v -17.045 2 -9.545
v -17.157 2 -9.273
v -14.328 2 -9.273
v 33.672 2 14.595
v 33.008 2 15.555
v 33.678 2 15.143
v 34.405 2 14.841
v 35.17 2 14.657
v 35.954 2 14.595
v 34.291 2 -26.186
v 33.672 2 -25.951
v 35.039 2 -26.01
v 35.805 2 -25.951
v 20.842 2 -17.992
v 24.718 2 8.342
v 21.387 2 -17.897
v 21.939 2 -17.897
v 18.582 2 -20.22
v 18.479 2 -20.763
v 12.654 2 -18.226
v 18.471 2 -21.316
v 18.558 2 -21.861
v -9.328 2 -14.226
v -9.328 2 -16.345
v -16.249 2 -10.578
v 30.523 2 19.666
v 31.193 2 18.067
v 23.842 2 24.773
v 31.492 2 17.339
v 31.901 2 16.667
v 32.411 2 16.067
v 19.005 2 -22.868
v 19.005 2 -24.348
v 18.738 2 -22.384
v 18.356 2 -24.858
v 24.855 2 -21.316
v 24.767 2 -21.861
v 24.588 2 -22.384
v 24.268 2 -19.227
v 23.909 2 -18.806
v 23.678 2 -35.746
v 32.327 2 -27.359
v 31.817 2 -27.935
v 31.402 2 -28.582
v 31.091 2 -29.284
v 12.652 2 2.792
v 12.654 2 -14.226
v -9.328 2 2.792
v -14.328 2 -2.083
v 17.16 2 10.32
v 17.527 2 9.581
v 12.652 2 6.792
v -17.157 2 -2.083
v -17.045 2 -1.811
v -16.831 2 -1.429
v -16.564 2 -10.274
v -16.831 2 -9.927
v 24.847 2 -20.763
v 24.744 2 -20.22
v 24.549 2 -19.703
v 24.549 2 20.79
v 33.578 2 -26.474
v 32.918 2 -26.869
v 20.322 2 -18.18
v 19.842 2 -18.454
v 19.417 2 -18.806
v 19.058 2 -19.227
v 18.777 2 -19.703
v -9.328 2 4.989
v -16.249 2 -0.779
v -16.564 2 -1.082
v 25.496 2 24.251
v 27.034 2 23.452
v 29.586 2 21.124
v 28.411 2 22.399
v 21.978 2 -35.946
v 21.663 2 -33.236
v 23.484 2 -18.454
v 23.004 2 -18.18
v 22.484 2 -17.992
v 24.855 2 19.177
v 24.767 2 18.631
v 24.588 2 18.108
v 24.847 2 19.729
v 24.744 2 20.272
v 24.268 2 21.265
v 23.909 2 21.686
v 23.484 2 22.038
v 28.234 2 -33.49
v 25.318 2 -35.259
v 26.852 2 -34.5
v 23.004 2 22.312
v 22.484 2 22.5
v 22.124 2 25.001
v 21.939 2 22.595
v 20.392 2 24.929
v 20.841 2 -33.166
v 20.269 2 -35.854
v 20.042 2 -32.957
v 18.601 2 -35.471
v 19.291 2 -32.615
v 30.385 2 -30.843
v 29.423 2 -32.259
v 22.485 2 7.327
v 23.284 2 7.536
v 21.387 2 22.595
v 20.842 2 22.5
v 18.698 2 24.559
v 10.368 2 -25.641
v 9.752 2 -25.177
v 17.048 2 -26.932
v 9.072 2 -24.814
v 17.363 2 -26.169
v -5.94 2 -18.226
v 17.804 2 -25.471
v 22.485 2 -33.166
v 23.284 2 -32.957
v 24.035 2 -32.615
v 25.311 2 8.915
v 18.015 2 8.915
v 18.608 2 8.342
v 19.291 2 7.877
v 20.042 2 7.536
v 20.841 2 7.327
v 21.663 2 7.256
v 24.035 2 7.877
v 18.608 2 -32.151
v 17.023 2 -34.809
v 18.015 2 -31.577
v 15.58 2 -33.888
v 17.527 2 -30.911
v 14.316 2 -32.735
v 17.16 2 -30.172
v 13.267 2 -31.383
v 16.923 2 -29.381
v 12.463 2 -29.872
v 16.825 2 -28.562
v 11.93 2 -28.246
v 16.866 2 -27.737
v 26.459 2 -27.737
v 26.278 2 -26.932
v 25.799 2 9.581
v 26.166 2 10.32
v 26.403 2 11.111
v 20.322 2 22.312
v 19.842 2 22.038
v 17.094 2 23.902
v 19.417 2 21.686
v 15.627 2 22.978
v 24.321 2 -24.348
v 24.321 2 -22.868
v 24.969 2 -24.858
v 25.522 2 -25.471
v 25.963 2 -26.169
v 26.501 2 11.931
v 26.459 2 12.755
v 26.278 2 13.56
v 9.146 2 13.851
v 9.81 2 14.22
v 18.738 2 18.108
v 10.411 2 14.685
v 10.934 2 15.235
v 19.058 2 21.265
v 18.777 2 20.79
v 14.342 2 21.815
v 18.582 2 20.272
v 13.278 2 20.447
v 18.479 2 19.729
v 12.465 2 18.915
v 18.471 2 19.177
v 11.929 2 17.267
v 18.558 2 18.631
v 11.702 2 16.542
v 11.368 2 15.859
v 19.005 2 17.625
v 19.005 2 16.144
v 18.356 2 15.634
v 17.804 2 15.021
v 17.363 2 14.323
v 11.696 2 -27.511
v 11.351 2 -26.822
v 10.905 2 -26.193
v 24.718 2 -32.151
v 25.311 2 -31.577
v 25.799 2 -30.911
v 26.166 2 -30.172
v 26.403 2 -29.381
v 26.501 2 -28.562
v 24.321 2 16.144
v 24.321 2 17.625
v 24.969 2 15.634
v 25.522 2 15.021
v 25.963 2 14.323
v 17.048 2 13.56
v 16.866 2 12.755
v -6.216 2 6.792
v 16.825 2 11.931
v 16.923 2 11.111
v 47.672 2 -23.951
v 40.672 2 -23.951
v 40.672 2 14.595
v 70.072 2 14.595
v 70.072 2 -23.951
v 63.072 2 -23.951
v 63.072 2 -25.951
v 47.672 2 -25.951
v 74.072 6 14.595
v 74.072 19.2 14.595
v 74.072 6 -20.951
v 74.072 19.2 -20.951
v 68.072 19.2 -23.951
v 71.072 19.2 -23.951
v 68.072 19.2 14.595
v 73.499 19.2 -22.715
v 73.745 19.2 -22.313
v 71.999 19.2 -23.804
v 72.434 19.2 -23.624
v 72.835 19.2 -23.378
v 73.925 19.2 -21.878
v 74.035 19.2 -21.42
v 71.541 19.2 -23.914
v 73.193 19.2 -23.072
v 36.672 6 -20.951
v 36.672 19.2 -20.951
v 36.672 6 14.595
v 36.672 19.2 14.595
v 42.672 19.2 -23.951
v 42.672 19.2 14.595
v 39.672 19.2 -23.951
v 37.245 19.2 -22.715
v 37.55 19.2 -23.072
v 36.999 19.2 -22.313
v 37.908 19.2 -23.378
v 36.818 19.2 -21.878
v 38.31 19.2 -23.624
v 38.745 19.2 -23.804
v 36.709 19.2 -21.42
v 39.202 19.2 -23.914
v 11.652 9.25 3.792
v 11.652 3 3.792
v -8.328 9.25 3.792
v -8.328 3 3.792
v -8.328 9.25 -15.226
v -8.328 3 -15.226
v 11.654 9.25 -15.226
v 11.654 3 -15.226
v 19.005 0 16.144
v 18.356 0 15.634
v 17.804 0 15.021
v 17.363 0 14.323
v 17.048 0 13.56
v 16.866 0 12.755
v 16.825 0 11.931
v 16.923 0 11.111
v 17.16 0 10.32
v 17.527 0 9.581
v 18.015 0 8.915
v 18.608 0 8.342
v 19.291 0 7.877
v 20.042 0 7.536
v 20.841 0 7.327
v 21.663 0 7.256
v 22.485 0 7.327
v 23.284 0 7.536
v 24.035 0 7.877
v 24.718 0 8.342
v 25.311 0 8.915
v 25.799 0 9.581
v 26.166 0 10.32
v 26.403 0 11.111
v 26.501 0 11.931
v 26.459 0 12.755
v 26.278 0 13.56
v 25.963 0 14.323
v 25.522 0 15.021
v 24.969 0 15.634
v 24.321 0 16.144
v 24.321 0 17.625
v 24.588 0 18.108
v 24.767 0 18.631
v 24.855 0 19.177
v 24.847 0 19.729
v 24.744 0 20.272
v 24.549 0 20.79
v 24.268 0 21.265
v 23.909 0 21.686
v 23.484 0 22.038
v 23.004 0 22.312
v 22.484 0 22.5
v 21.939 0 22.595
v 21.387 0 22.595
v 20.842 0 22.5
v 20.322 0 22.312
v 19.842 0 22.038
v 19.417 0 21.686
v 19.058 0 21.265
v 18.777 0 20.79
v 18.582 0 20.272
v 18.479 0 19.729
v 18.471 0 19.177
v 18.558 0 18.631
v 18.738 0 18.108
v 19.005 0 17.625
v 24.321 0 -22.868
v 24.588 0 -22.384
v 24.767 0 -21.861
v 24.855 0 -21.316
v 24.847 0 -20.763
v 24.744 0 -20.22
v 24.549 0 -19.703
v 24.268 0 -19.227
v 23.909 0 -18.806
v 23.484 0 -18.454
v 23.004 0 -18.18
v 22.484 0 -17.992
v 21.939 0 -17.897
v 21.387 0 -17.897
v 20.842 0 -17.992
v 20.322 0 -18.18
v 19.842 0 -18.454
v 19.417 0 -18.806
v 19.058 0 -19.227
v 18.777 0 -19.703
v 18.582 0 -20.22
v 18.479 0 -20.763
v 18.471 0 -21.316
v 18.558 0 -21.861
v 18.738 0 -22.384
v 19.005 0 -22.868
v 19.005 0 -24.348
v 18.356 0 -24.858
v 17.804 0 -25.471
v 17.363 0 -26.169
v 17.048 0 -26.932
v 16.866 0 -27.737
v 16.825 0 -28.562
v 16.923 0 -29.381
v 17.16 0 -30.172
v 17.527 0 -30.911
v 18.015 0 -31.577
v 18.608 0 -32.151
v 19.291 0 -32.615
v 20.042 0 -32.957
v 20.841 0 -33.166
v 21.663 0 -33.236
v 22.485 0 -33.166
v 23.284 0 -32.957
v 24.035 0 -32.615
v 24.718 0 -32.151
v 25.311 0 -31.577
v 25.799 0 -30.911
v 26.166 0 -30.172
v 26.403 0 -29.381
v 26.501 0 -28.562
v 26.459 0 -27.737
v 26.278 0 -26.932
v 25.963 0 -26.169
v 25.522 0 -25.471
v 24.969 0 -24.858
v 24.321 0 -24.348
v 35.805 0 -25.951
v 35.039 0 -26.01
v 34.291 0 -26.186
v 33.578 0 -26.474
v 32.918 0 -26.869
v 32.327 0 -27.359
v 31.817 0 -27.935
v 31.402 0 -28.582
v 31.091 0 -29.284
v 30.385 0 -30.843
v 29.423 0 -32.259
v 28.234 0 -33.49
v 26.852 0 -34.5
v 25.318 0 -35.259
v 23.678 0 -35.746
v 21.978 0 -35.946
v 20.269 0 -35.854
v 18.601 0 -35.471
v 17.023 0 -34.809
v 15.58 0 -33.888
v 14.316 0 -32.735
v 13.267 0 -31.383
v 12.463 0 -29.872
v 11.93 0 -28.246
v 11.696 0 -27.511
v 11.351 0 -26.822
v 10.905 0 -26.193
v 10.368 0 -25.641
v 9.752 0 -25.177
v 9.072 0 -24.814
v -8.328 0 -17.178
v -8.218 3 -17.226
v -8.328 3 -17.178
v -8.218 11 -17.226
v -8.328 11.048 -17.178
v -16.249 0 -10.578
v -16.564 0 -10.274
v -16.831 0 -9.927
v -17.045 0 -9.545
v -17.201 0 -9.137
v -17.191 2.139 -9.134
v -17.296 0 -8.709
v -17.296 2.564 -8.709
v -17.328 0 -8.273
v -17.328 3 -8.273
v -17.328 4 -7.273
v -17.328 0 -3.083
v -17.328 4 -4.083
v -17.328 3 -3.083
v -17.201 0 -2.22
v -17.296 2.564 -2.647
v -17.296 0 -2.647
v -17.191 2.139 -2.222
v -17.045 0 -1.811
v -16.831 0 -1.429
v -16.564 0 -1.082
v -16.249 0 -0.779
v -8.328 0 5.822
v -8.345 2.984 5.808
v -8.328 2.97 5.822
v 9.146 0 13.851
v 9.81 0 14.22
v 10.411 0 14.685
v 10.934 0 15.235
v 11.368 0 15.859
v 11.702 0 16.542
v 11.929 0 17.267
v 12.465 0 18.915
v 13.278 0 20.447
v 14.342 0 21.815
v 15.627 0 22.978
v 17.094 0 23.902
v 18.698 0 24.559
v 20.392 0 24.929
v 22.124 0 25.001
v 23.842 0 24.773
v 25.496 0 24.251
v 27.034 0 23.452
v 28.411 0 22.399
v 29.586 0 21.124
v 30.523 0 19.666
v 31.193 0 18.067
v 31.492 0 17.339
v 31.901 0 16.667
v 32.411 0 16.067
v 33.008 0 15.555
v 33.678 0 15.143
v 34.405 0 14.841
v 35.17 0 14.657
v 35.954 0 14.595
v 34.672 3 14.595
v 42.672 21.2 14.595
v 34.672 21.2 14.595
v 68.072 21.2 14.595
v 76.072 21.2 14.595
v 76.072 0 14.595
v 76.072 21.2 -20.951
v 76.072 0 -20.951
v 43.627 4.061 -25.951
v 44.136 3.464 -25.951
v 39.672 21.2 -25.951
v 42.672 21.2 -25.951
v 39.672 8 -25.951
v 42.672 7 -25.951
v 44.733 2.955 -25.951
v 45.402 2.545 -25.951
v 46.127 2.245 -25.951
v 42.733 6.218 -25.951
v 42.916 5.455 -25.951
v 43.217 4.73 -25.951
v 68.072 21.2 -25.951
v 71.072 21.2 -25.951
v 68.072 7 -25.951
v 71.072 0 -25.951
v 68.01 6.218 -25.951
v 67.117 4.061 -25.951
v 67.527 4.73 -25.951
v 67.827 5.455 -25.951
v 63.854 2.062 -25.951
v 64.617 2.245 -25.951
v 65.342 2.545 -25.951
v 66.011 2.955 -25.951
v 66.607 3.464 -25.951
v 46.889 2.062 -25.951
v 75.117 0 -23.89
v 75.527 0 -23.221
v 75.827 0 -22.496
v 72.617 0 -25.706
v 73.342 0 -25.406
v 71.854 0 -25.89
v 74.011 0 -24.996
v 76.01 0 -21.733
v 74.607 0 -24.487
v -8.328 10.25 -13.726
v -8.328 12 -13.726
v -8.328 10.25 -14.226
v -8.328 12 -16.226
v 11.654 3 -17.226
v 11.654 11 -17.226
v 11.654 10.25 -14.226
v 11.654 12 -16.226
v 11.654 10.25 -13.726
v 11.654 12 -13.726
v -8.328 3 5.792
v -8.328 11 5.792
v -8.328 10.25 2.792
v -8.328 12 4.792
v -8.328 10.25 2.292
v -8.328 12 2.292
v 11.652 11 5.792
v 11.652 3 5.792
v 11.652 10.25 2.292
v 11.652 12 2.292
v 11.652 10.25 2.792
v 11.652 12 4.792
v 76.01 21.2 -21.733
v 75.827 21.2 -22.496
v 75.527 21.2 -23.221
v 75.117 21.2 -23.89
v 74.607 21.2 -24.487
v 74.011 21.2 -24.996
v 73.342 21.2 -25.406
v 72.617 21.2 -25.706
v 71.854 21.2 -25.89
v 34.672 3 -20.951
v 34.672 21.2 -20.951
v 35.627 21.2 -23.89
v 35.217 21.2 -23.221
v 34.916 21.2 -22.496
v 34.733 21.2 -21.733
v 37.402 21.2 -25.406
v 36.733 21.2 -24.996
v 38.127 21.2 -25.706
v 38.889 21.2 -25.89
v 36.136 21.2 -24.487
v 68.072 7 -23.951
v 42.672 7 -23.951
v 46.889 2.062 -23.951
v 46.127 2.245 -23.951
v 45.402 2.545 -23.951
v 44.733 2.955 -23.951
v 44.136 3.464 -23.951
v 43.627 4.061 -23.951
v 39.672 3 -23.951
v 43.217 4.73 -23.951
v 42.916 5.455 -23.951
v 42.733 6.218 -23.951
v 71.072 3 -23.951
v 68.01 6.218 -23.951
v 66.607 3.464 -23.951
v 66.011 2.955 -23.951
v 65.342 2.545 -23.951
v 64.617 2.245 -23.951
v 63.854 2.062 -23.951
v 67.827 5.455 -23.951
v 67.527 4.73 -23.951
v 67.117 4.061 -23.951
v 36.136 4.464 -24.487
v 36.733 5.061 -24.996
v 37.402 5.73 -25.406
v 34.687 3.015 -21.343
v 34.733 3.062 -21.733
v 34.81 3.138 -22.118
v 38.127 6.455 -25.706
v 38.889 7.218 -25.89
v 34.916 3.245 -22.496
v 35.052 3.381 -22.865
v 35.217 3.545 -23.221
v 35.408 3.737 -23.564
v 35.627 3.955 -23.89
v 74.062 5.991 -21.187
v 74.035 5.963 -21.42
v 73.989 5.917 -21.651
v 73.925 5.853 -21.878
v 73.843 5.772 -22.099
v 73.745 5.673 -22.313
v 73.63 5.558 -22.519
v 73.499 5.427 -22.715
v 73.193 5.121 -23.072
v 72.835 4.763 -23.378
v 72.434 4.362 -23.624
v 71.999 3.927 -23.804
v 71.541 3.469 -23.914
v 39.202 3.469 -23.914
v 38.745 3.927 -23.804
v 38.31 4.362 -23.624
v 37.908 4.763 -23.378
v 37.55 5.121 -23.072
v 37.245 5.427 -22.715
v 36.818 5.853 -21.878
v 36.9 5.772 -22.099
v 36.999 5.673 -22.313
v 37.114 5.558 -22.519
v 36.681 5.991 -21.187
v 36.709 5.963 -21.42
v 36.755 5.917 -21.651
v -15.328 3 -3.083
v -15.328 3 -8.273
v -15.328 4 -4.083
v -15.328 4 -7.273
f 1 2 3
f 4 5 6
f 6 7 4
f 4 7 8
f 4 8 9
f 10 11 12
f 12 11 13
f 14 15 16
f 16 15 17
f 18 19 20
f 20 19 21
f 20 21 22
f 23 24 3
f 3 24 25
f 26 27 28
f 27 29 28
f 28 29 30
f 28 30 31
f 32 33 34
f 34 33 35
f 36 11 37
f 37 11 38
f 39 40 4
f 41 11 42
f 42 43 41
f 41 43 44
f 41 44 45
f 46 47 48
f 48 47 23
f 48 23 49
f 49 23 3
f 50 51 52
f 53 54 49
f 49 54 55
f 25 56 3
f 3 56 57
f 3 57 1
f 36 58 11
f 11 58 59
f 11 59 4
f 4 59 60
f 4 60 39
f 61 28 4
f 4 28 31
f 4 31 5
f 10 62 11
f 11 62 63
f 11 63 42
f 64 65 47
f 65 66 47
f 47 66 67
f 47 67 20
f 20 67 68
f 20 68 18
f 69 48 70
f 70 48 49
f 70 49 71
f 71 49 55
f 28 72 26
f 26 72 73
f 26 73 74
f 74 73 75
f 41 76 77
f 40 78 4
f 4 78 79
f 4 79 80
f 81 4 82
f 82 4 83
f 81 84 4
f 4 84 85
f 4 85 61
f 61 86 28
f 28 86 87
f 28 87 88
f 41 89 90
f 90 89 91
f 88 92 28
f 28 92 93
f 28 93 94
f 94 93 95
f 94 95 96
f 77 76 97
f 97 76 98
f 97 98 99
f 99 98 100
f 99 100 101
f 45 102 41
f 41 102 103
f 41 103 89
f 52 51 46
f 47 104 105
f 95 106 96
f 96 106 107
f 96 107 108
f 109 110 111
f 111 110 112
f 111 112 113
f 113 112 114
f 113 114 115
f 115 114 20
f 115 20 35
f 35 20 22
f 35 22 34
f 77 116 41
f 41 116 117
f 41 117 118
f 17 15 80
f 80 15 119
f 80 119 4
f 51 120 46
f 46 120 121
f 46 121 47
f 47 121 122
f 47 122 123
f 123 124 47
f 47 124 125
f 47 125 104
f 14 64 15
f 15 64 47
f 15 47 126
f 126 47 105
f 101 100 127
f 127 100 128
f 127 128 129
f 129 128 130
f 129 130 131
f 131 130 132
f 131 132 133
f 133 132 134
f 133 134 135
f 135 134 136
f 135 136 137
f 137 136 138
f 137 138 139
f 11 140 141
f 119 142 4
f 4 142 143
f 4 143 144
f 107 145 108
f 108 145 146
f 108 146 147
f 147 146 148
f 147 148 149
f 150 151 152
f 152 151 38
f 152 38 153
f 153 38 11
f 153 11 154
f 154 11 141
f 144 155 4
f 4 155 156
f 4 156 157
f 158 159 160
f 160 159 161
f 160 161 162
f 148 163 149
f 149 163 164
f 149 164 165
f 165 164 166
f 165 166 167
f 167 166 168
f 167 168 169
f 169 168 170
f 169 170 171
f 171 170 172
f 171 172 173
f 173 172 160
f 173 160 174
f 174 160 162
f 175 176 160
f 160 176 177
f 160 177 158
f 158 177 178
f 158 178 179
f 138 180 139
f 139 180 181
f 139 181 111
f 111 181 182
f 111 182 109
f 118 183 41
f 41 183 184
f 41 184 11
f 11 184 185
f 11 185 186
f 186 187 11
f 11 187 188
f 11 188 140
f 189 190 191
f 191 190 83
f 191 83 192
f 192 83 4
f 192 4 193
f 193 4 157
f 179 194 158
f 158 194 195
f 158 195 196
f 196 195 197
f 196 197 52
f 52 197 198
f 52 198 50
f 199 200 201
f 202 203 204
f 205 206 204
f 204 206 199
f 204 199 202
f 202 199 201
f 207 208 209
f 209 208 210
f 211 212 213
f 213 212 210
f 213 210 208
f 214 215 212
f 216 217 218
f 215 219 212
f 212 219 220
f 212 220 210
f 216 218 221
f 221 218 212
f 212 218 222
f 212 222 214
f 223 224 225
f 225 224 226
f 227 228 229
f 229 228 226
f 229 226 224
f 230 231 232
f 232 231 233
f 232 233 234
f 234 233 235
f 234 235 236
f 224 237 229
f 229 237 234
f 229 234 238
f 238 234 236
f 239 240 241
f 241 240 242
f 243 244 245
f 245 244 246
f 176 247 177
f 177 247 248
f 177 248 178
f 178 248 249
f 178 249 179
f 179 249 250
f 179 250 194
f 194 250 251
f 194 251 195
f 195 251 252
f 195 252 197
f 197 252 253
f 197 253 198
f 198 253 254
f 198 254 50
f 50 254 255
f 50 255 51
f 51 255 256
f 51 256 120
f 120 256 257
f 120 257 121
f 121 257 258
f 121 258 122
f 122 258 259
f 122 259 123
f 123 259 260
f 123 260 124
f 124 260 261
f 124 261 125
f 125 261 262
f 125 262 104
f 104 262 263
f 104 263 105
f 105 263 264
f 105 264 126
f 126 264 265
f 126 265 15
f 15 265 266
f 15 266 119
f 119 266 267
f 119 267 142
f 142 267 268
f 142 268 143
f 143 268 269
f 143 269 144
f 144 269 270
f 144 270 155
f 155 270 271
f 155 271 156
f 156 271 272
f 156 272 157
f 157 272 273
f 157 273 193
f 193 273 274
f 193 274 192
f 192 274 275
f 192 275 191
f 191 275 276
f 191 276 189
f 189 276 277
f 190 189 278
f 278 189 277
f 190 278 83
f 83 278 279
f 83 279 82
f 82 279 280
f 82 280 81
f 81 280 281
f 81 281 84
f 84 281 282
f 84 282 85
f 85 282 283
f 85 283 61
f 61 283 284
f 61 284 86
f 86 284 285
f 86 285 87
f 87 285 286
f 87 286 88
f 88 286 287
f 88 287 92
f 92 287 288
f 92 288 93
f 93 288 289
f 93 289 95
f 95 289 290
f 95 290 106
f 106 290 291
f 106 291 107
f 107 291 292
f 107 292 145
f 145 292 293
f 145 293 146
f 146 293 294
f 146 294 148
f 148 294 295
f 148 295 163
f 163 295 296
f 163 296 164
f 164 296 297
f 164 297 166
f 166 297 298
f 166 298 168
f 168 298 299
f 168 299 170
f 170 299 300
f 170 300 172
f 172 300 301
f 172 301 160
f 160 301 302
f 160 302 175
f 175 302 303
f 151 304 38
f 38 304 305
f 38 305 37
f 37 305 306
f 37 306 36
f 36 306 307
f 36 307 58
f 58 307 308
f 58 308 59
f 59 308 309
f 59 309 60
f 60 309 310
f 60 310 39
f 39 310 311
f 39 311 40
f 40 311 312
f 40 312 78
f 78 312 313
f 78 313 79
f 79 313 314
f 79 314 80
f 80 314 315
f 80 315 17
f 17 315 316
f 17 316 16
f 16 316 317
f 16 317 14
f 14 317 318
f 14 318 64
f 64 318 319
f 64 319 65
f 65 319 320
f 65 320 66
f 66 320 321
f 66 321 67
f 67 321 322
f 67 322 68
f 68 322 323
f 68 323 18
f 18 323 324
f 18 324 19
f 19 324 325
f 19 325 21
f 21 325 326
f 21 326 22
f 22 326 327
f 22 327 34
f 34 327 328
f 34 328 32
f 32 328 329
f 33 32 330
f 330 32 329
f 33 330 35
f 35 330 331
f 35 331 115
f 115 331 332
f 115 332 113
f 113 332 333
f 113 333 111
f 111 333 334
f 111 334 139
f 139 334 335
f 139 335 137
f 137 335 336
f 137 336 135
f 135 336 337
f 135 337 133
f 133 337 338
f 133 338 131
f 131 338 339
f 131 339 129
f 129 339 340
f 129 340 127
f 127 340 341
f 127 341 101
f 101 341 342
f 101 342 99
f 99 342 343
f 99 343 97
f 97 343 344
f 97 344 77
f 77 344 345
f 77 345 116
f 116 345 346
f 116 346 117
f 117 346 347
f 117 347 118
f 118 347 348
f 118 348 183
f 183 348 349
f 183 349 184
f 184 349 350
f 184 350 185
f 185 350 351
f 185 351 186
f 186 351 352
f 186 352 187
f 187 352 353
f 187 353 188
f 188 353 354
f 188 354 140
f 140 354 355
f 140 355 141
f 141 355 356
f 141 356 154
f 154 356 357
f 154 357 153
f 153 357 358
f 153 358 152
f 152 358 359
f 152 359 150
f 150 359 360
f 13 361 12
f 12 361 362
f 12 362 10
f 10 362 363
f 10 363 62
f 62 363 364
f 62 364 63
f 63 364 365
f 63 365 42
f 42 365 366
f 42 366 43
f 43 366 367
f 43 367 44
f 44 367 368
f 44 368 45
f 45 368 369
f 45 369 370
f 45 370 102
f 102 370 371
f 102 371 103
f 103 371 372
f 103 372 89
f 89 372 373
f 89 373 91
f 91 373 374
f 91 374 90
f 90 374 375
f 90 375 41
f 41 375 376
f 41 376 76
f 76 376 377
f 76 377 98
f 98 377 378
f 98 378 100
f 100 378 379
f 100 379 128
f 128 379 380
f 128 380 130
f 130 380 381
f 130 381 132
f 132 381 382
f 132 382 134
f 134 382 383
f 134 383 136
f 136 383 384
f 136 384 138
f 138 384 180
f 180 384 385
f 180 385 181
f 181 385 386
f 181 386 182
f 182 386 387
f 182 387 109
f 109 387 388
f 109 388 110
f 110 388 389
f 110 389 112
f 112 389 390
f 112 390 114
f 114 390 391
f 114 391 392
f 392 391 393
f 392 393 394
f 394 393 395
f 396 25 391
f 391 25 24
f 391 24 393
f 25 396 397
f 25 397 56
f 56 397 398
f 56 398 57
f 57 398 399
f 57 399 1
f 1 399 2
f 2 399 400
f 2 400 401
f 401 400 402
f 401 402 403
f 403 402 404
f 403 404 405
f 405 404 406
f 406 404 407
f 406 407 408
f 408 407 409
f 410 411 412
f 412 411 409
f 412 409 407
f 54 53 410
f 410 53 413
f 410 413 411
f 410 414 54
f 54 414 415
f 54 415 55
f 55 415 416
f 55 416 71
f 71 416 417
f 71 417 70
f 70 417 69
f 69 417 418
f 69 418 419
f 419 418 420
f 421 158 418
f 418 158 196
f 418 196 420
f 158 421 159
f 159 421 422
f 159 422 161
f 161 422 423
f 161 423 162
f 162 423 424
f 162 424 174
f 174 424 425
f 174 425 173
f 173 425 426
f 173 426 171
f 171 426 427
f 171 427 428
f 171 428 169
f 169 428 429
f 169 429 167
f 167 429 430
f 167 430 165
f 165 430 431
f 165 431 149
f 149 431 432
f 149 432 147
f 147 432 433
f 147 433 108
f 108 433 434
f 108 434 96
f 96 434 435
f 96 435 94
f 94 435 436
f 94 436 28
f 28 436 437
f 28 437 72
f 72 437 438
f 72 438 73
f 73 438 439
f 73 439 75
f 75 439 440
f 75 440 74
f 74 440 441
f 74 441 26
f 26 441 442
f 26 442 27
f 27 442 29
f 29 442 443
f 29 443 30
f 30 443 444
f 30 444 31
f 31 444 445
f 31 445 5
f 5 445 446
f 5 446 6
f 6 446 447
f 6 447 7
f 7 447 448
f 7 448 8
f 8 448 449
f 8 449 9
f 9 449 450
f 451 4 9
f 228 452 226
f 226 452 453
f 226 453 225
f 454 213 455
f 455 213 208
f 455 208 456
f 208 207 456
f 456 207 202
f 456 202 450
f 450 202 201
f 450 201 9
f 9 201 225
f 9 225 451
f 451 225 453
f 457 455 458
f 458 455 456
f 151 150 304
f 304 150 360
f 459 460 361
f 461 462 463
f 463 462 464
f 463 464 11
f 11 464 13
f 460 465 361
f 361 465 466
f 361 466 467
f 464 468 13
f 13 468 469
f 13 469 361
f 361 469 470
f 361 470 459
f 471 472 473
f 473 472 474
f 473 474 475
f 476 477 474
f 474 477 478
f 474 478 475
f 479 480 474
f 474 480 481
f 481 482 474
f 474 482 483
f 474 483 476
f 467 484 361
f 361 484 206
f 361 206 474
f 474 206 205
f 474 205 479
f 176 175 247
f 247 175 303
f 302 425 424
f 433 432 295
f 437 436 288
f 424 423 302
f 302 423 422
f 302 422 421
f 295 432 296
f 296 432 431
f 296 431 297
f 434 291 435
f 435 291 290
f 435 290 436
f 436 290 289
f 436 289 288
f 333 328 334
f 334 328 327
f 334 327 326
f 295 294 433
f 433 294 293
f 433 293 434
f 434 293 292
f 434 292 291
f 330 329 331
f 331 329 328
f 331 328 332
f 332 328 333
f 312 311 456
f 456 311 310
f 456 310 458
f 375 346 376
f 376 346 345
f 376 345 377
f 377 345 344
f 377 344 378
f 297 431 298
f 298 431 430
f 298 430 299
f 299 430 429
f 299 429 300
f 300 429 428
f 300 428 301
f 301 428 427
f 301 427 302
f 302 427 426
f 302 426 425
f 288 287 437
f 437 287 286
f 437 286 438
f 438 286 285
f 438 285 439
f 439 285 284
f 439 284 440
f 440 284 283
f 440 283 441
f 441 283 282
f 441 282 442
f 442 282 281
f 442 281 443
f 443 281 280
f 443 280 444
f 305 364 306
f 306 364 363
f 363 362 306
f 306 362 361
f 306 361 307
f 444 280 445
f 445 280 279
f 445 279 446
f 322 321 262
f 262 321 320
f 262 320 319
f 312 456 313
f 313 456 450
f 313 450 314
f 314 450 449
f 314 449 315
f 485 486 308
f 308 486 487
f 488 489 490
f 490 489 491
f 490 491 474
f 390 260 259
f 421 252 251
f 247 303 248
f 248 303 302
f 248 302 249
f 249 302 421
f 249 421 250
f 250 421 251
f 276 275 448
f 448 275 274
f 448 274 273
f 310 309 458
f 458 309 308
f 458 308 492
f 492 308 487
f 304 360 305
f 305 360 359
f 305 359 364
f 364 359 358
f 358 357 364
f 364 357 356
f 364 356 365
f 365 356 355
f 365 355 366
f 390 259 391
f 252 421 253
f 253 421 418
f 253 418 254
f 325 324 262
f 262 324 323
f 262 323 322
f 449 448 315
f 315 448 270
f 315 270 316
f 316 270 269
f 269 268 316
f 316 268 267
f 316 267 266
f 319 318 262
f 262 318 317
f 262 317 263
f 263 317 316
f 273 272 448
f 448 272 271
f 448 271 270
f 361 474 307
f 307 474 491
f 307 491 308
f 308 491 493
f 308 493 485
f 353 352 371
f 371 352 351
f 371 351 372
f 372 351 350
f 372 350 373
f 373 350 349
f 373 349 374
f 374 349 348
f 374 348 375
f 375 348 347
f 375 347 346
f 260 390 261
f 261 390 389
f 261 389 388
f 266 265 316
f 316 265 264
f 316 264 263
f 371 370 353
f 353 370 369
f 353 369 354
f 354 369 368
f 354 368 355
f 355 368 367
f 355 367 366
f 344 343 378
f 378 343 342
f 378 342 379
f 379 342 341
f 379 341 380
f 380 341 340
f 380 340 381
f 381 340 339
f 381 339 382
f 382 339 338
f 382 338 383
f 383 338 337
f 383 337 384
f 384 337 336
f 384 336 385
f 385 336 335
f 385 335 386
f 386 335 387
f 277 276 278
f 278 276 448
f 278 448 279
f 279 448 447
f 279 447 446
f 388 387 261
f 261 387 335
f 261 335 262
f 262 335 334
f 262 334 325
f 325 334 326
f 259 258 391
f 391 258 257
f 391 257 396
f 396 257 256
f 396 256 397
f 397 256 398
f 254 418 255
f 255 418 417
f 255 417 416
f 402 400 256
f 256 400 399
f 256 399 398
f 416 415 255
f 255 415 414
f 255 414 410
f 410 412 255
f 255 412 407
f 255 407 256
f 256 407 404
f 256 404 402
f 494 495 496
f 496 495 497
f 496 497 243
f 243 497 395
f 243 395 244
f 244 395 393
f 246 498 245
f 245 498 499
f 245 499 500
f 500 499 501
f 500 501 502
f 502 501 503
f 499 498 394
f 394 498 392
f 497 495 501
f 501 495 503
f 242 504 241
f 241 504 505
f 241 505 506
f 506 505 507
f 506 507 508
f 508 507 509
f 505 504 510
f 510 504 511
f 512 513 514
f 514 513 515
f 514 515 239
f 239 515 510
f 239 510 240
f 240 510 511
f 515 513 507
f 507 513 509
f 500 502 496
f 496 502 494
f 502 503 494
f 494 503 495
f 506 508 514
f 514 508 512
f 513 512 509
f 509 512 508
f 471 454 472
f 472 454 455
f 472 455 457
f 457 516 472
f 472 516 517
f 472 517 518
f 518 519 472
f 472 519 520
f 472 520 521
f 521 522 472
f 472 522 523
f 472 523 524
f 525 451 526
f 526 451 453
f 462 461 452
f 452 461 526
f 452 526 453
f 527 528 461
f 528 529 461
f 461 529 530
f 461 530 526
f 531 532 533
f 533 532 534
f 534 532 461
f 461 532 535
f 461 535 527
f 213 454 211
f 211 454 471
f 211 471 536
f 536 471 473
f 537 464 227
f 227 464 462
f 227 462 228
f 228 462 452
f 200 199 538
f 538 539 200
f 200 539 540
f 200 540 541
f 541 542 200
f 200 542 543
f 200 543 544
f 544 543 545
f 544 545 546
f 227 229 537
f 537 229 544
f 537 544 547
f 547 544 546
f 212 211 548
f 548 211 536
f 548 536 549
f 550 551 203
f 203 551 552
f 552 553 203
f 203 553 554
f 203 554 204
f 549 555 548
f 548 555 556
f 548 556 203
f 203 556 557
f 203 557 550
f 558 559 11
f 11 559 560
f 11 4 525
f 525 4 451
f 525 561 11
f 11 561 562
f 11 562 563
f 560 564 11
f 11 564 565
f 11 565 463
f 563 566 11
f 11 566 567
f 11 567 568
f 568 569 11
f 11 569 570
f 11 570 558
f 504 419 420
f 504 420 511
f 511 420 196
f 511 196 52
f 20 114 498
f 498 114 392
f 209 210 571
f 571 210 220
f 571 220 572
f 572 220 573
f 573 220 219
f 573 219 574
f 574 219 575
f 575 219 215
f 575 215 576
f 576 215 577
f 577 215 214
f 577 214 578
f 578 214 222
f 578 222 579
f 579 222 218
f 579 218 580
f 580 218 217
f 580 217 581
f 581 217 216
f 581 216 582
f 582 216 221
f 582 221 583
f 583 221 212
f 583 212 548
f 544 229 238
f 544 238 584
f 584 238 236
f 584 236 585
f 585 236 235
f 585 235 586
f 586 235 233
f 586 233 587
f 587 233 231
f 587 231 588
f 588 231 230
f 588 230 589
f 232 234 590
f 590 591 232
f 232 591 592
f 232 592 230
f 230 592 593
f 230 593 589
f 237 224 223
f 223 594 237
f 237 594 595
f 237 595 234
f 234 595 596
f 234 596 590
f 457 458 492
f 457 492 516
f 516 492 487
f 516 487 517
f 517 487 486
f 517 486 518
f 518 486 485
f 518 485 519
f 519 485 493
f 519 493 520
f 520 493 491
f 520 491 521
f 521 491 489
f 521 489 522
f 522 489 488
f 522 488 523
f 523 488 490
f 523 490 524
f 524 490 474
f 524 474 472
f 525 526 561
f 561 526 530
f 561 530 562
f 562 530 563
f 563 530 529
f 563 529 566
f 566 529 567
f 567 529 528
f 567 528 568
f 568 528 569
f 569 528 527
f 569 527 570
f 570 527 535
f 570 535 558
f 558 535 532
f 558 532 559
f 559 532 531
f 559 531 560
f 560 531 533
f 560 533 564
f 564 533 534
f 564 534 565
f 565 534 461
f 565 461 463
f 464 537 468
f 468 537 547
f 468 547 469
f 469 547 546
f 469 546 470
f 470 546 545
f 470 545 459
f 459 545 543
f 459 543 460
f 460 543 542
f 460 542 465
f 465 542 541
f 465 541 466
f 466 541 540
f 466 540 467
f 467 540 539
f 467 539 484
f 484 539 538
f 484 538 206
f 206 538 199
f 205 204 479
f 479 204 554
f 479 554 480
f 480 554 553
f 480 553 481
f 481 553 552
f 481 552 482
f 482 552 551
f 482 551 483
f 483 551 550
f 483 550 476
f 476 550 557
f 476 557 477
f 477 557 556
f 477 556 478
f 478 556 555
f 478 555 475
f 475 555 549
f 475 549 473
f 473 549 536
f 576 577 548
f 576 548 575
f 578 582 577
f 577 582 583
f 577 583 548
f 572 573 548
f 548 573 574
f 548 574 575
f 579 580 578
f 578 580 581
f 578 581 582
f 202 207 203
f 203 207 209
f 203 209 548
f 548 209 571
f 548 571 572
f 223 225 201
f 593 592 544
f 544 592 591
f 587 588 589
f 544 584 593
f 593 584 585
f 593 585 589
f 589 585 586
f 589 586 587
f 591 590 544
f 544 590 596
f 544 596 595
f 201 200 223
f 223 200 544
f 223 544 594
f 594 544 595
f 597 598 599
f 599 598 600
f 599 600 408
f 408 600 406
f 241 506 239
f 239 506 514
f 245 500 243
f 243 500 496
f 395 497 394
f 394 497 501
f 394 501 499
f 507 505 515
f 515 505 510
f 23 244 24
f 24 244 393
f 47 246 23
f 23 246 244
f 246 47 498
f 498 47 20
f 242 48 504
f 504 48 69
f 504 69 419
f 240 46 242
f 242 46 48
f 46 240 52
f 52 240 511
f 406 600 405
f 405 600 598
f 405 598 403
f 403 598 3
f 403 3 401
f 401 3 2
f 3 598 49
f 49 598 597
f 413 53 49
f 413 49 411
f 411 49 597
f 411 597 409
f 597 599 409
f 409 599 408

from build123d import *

# Parameters (mm, degrees)
BOSS_EXTRUDE3_DEPTH  = 2
SKETCH2_W            = 19.980275276
SKETCH2_H            = 2
BOSS_EXTRUDE4_DEPTH  = 10
SKETCH4_W            = 19.982686102
SKETCH4_H            = 1.75
BOSS_EXTRUDE6_DEPTH  = 1.5
SKETCH5_W            = 19.980275276
SKETCH5_H            = 1.75
BOSS_EXTRUDE7_DEPTH  = 1.5
SKETCH6_W            = 2
SKETCH6_H            = 40.546143633
BOSS_EXTRUDE8_DEPTH  = 19.2
SKETCH7_W            = 40.546143633
SKETCH7_H            = 2
BOSS_EXTRUDE9_DEPTH  = 6
SKETCH8_W            = 40.546143633
SKETCH8_H            = 2
BOSS_EXTRUDE10_DEPTH = 6
SKETCH9_W            = 2
SKETCH9_H            = 17.2
BOSS_EXTRUDE11_DEPTH = 6
SKETCH11_W           = 2
SKETCH11_H           = 17.2
BOSS_EXTRUDE12_DEPTH = 6
CHAMFER3_SIZE        = 1
FILLET6_R            = 3
FILLET12_R           = 5
FILLET13_R           = 5
CHAMFER4_SIZE        = 4
SKETCH12_W           = 2
SKETCH12_H           = 5.189750324
BOSS_EXTRUDE13_DEPTH = 2
CHAMFER5_SIZE        = 1


with BuildPart() as part:
    # Sketch1 → Boss-Extrude3 (new body)
    with BuildSketch(Plane(origin=(0, 0, 0), x_dir=(1, 0, 0), z_dir=(0, 1, 0))):
        with BuildLine():
            Line((-8.328383402, 17.178082192), (-11.926539406, 14.179618856))
            Line((-11.926539406, 14.179618856), (-16.248936601, 10.577621193))
            ThreePointArc((-16.248936601, 10.577621193), (-17.045151666, 9.545423543), (-17.328383402, 8.272957354))
            Line((-17.328383402, 8.272957354), (-17.328383402, 3.08320703))
            ThreePointArc((-17.328383402, 3.08320703), (-17.045151666, 1.810740841), (-16.248936601, 0.778543191))
            Line((-16.248936601, 0.778543191), (-11.926539406, -2.823454472))
            Line((-11.926539406, -2.823454472), (-8.328383402, -5.821917808))
            Line((-8.328383402, -5.821917808), (9.145578492, -13.850782578))
            ThreePointArc((9.145578492, -13.850782578), (10.93396709, -15.23549913), (11.929216114, -17.266571036))
            ThreePointArc((11.929216114, -17.266571036), (21.256400089, -25.002812312), (31.193312026, -18.067138506))
            ThreePointArc((31.193312026, -18.067138506), (33.007912602, -15.555233716), (35.954159741, -14.594989625))
            Line((35.954159741, -14.594989625), (36.671616598, -14.594989625))
            Line((36.671616598, -14.594989625), (76.071616598, -14.594989625))
            Line((76.071616598, -14.594989625), (76.071616598, 25.951154008))
            Line((76.071616598, 25.951154008), (36.671616598, 25.951154008))
            Line((36.671616598, 25.951154008), (35.805077068, 25.951154008))
            ThreePointArc((35.805077068, 25.951154008), (32.918325722, 26.868671104), (31.09103186, 29.284487342))
            ThreePointArc((31.09103186, 29.284487342), (21.121556826, 35.936488389), (11.929724224, 28.245600027))
            ThreePointArc((11.929724224, 28.245600027), (10.905359885, 26.19326698), (9.072373225, 24.814298837))
            Line((9.072373225, 24.814298837), (-8.328383402, 17.178082192))
        make_face()
        with BuildLine():
            Line((24.320629097, -16.144178085), (24.320629097, -17.62452967))
            ThreePointArc((24.320629097, -17.62452967), (21.662941444, -22.60685858), (19.005253792, -17.62452967))
            Line((19.005253792, -17.62452967), (19.005253792, -16.144178085))
            ThreePointArc((19.005253792, -16.144178085), (21.662941444, -7.256310151), (24.320629097, -16.144178085))
        make_face(mode=Mode.SUBTRACT)
        with BuildLine():
            Line((24.320629097, 24.348091169), (24.320629097, 22.867739584))
            ThreePointArc((24.320629097, 22.867739584), (21.662941444, 17.885410674), (19.005253792, 22.867739584))
            Line((19.005253792, 22.867739584), (19.005253792, 24.348091169))
            ThreePointArc((19.005253792, 24.348091169), (21.662941444, 33.235959102), (24.320629097, 24.348091169))
        make_face(mode=Mode.SUBTRACT)
    extrude(amount=BOSS_EXTRUDE3_DEPTH)

    # Sketch2 → Boss-Extrude4 (add)
    with BuildSketch(Plane(origin=(0, 2, 0), x_dir=(1, 0, 0), z_dir=(0, 1, 0))):
        Polygon((11.6543027, 15.226428568), (11.6543027, 17.226428568), (-8.218215819, 17.226428568), (-8.328383402, 17.178082192), (-8.328383402, 15.226428568), align=None)
        with Locations((1.661754236, -4.792288058)):
            Rectangle(SKETCH2_W, SKETCH2_H)
    extrude(amount=BOSS_EXTRUDE4_DEPTH)

    # Sketch4 → Boss-Extrude6 (add)
    with BuildSketch(Plane.XY.offset(-15.226428568)):
        with Locations((1.662959649, 11.125)):
            Rectangle(SKETCH4_W, SKETCH4_H)
    extrude(amount=BOSS_EXTRUDE6_DEPTH)

    # Sketch5 → Boss-Extrude7 (add)
    with BuildSketch(Plane(origin=(0, 0, 3.792288058), x_dir=(-1, 0, 0), z_dir=(0, 0, -1))):
        with Locations((-1.661754236, 11.125)):
            Rectangle(SKETCH5_W, SKETCH5_H)
    extrude(amount=BOSS_EXTRUDE7_DEPTH)

    # Sketch6 → Boss-Extrude8 (add)
    with BuildSketch(Plane(origin=(0, 2, 0), x_dir=(1, 0, 0), z_dir=(0, 1, 0))):
        with Locations((35.671616598, 5.678082192)):
            Rectangle(SKETCH6_W, SKETCH6_H)
        with Locations((75.071616598, 5.678082192)):
            Rectangle(SKETCH6_W, SKETCH6_H)
    extrude(amount=BOSS_EXTRUDE8_DEPTH)

    # Sketch7 → Boss-Extrude9 (add)
    with BuildSketch(Plane.ZY.offset(-74.071616598)):
        with Locations((-5.678082192, 20.2)):
            Rectangle(SKETCH7_W, SKETCH7_H)
    extrude(amount=BOSS_EXTRUDE9_DEPTH)

    # Sketch8 → Boss-Extrude10 (add)
    with BuildSketch(Plane(origin=(36.671616598, 0, 0), x_dir=(0, 0, -1), z_dir=(1, 0, 0))):
        with Locations((5.678082192, 20.2)):
            Rectangle(SKETCH8_W, SKETCH8_H)
    extrude(amount=BOSS_EXTRUDE10_DEPTH)

    # Sketch9 → Boss-Extrude11 (add)
    with BuildSketch(Plane(origin=(36.671616598, 0, 0), x_dir=(0, 0, -1), z_dir=(1, 0, 0))):
        with Locations((24.951154008, 10.6)):
            Rectangle(SKETCH9_W, SKETCH9_H)
    extrude(amount=BOSS_EXTRUDE11_DEPTH)

    # Sketch11 → Boss-Extrude12 (add)
    with BuildSketch(Plane.ZY.offset(-74.071616598)):
        with Locations((-24.951154008, 10.6)):
            Rectangle(SKETCH11_W, SKETCH11_H)
    extrude(amount=BOSS_EXTRUDE12_DEPTH)

    # Chamfer3
    # the kernel refuses this chamfer: 1 mm, written as the material it adds along each edge
    with BuildSketch(Plane(origin=(34.671616598, 2, -25.951154008), x_dir=(-1, 0, 0), z_dir=(0, 0, 1))) as chamfer3_piece_1:
        Polygon((CHAMFER3_SIZE, 0), (0, -CHAMFER3_SIZE), (0, 0), align=None)
    extrude(amount=40.546143633)
    with BuildSketch(Plane(origin=(11.651891874, 2, 5.792288058), x_dir=(0, 0, 1), z_dir=(-1, 0, 0))) as chamfer3_piece_2_section:
        Polygon((CHAMFER3_SIZE, 0), (0, CHAMFER3_SIZE), (0, 0), align=None)
    chamfer3_piece_2 = extrude(amount=19.980275276, mode=Mode.PRIVATE)
    chamfer3_piece_2 = split(chamfer3_piece_2, bisect_by=Plane(origin=(8.15775509, 2, 13.396901508), z_dir=(0.4175125238289849, 0, -0.9086711684905334)), keep=Keep.TOP, mode=Mode.PRIVATE)
    add(chamfer3_piece_2)
    with BuildSketch(Plane(origin=(11.6543027, 2, -17.226428568), x_dir=(0, 0, -1), z_dir=(-1, 0, 0))) as chamfer3_piece_3_section:
        Polygon((CHAMFER3_SIZE, 0), (0, -CHAMFER3_SIZE), (0, 0), align=None)
    chamfer3_piece_3 = extrude(amount=22.444201507, mode=Mode.PRIVATE)
    chamfer3_piece_3 = split(chamfer3_piece_3, bisect_by=Plane(origin=(8.445196081, 2, -24.539065946), z_dir=(0.40185152236711835, 0, 0.9157048399846042)), keep=Keep.TOP, mode=Mode.PRIVATE)
    add(chamfer3_piece_3)

    # Fillet6
    fillet6_edges = [part.edges().sort_by_distance(p)[0] for p in [
        (36.671616598, 10.6, -23.951154008),
        (74.071616598, 10.6, -23.951154008),
    ]]
    fillet(fillet6_edges, radius=FILLET6_R)

    # Fillet12
    fillet12_edges = [part.edges().sort_by_distance(p)[0] for p in [
        (34.671616598, 12.1, -25.951154008),
        (76.071616598, 10.6, -25.951154008),
    ]]
    fillet(fillet12_edges, radius=FILLET12_R)

    # Fillet13
    fillet13_edges = [part.edges().sort_by_distance(p)[0] for p in [
        (42.671616598, 2, -24.951154008),
        (68.071616598, 2, -24.951154008),
    ]]
    fillet(fillet13_edges, radius=FILLET13_R)

    # Chamfer4
    # the kernel refuses this chamfer: 4 mm, written as the material it adds along each edge
    with BuildSketch(Plane(origin=(74.071616598, 2, -31.23788596), x_dir=(-1, 0, 0), z_dir=(0, 0, 1))) as chamfer4_piece_1_section:
        Polygon((CHAMFER4_SIZE, 0), (0, -CHAMFER4_SIZE), (0, 0), align=None)
    chamfer4_piece_1 = extrude(amount=45.832875585, mode=Mode.PRIVATE)
    chamfer4_piece_1 = split(chamfer4_piece_1, bisect_by=Plane(origin=(74.071616598, 2, -23.951154008), z_dir=(0, 0, 1)), keep=Keep.TOP, mode=Mode.PRIVATE)
    add(chamfer4_piece_1)
    with BuildSketch(Plane(origin=(36.671616598, 2, 14.594989625), x_dir=(1, 0, 0), z_dir=(0, 0, -1))) as chamfer4_piece_2_section:
        Polygon((CHAMFER4_SIZE, 0), (0, -CHAMFER4_SIZE), (0, 0), align=None)
    chamfer4_piece_2 = extrude(amount=45.832875585, mode=Mode.PRIVATE)
    chamfer4_piece_2 = split(chamfer4_piece_2, bisect_by=Plane(origin=(36.671616598, 2, -23.951154008), z_dir=(0, 0, 1)), keep=Keep.TOP, mode=Mode.PRIVATE)
    add(chamfer4_piece_2)

    # Sketch12 → Boss-Extrude13 (add)
    with BuildSketch(Plane(origin=(0, 2, 0), x_dir=(1, 0, 0), z_dir=(0, 1, 0))):
        with Locations((-16.328383402, 5.678082192)):
            Rectangle(SKETCH12_W, SKETCH12_H)
    extrude(amount=BOSS_EXTRUDE13_DEPTH)

    # Chamfer5
    # the kernel refuses this chamfer: 1 mm, written as the material it adds along each edge
    with BuildSketch(Plane(origin=(11.651891874, 10.25, 3.792288058), x_dir=(0, -1, 0), z_dir=(-1, 0, 0))) as chamfer5_piece_1:
        Polygon((CHAMFER5_SIZE, 0), (0, -CHAMFER5_SIZE), (0, 0), align=None)
    extrude(amount=19.980275276)
    with BuildSketch(Plane(origin=(11.6543027, 10.25, -15.226428568), x_dir=(0, -1, 0), z_dir=(-1, 0, 0))) as chamfer5_piece_2:
        Polygon((CHAMFER5_SIZE, 0), (0, CHAMFER5_SIZE), (0, 0), align=None)
    extrude(amount=19.982686102)
    with BuildSketch(Plane(origin=(11.6543027, 2, -15.226428568), x_dir=(1, 0, 0), z_dir=(0, 0, -1))) as chamfer5_piece_3_section:
        Polygon((CHAMFER5_SIZE, 0), (0, -CHAMFER5_SIZE), (0, 0), align=None)
    chamfer5_piece_3 = extrude(amount=5.571682988, mode=Mode.PRIVATE)
    chamfer5_piece_3 = split(chamfer5_piece_3, bisect_by=Plane(origin=(11.6543027, 3.5, -16.726428568), z_dir=(0, -0.7071067811865476, 0.7071067811865476)), keep=Keep.TOP, mode=Mode.PRIVATE)
    add(chamfer5_piece_3)
    with BuildSketch(Plane(origin=(-8.328383402, 2, -15.226428568), x_dir=(0, 0, 1), z_dir=(1, 0, 0))) as chamfer5_piece_4:
        Polygon((CHAMFER5_SIZE, 0), (0, -CHAMFER5_SIZE), (0, 0), align=None)
    extrude(amount=19.982686102)
    with BuildSketch(Plane(origin=(-8.328383402, 2, -19.74976518), x_dir=(-1, 0, 0), z_dir=(0, 0, 1))) as chamfer5_piece_5_section:
        Polygon((CHAMFER5_SIZE, 0), (0, -CHAMFER5_SIZE), (0, 0), align=None)
    chamfer5_piece_5 = extrude(amount=4.523336611, mode=Mode.PRIVATE)
    chamfer5_piece_5 = split(chamfer5_piece_5, bisect_by=Plane(origin=(-7.063621277, 2, -18.232050629), z_dir=(0.6401843996644802, 0, 0.7682212795973757)), keep=Keep.TOP, mode=Mode.PRIVATE)
    add(chamfer5_piece_5)
    with BuildSketch(Plane(origin=(11.651891874, 2, 9.363971046), x_dir=(1, 0, 0), z_dir=(0, 0, -1))) as chamfer5_piece_6_section:
        Polygon((CHAMFER5_SIZE, 0), (0, -CHAMFER5_SIZE), (0, 0), align=None)
    chamfer5_piece_6 = extrude(amount=5.571682988, mode=Mode.PRIVATE)
    chamfer5_piece_6 = split(chamfer5_piece_6, bisect_by=Plane(origin=(11.651891874, 0.714158506, 8.078129552), z_dir=(0, -0.7071067811865476, -0.7071067811865476)), keep=Keep.TOP, mode=Mode.PRIVATE)
    add(chamfer5_piece_6)
    with BuildSketch(Plane(origin=(-8.328383402, 2, 3.792288058), x_dir=(-1, 0, 0), z_dir=(0, 0, 1))) as chamfer5_piece_7_section:
        Polygon((CHAMFER5_SIZE, 0), (0, -CHAMFER5_SIZE), (0, 0), align=None)
    chamfer5_piece_7 = extrude(amount=4.601312738, mode=Mode.PRIVATE)
    chamfer5_piece_7 = split(chamfer5_piece_7, bisect_by=Plane(origin=(-8.328383402, 3.5, 5.292288058), z_dir=(0, -0.7071067811865476, -0.7071067811865476)), keep=Keep.TOP, mode=Mode.PRIVATE)
    chamfer5_piece_7 = split(chamfer5_piece_7, bisect_by=Plane(origin=(-9.326561968, 2, 4.990102337), z_dir=(0.6401843996644799, 0, -0.7682212795973757)), keep=Keep.TOP, mode=Mode.PRIVATE)
    add(chamfer5_piece_7)
    with BuildSketch(Plane(origin=(-8.328383402, 2, 3.792288058), x_dir=(0, 0, -1), z_dir=(1, 0, 0))) as chamfer5_piece_8:
        Polygon((CHAMFER5_SIZE, 0), (0, CHAMFER5_SIZE), (0, 0), align=None)
    extrude(amount=19.980275276)
    with BuildSketch(Plane(origin=(-19.90006639, 2, -8.272957354), x_dir=(0, 0, -1), z_dir=(1, 0, 0))) as chamfer5_piece_9_section:
        Polygon((CHAMFER5_SIZE, 0), (0, CHAMFER5_SIZE), (0, 0), align=None)
    chamfer5_piece_9 = extrude(amount=4.571682988, mode=Mode.PRIVATE)
    chamfer5_piece_9 = chamfer5_piece_9 & Plane(origin=(-14.328383402, 2, -8.272957354), x_dir=(-0.6401843996644775, 0, -0.7682212795973778), z_dir=(0, -1, 0)) * Cylinder(3, 14, mode=Mode.PRIVATE)
    add(chamfer5_piece_9)
    with BuildSketch(Plane(origin=(-15.328383402, 2, -8.272957354), x_dir=(1, 0, 0), z_dir=(0, 0, 1))) as chamfer5_piece_10:
        Polygon((CHAMFER5_SIZE, 0), (0, CHAMFER5_SIZE), (0, 0), align=None)
    extrude(amount=5.189750324)
    with BuildSketch(Plane(origin=(-15.328383402, 2, -3.08320703), x_dir=(0, 0, 1), z_dir=(-1, 0, 0))) as chamfer5_piece_11_section:
        Polygon((CHAMFER5_SIZE, 0), (0, CHAMFER5_SIZE), (0, 0), align=None)
    chamfer5_piece_11 = extrude(amount=4.571682988, mode=Mode.PRIVATE)
    chamfer5_piece_11 = chamfer5_piece_11 & Plane(origin=(-14.328383402, 2, -3.08320703), x_dir=(-1, 0, 0), z_dir=(0, -1, 0)) * Cylinder(3, 14, mode=Mode.PRIVATE)
    add(chamfer5_piece_11)
    with BuildSketch(Plane(origin=(-8.328383402, 2, -15.226428568), x_dir=(0, 0, 1), z_dir=(1, 0, 0))) as chamfer5_piece_12a_section:
        Polygon((CHAMFER5_SIZE, 0), (0, -CHAMFER5_SIZE), (0, 0), align=None)
    chamfer5_piece_12a = extrude(amount=22.55436909, mode=Mode.PRIVATE)
    chamfer5_piece_12a = split(chamfer5_piece_12a, bisect_by=Plane(origin=(11.6543027, 2, -15.226428568), z_dir=(1, 0, 0)), keep=Keep.TOP, mode=Mode.PRIVATE)
    with BuildSketch(Plane(origin=(11.6543027, 2, -12.65474558), x_dir=(1, 0, 0), z_dir=(0, 0, -1))) as chamfer5_piece_12b_section:
        Polygon((CHAMFER5_SIZE, 0), (0, -CHAMFER5_SIZE), (0, 0), align=None)
    chamfer5_piece_12b = extrude(amount=8.143365976, mode=Mode.PRIVATE)
    chamfer5_piece_12b = split(chamfer5_piece_12b, bisect_by=Plane(origin=(11.6543027, 2, -15.226428568), z_dir=(0, 0, 1)), keep=Keep.TOP, mode=Mode.PRIVATE)
    chamfer5_piece_12 = chamfer5_piece_12a & chamfer5_piece_12b
    add(chamfer5_piece_12)
    with BuildSketch(Plane(origin=(-8.328383402, 2, -19.74976518), x_dir=(-1, 0, 0), z_dir=(0, 0, 1))) as chamfer5_piece_13a_section:
        Polygon((CHAMFER5_SIZE, 0), (0, -CHAMFER5_SIZE), (0, 0), align=None)
    chamfer5_piece_13a = extrude(amount=7.095019599, mode=Mode.PRIVATE)
    chamfer5_piece_13a = split(chamfer5_piece_13a, bisect_by=Plane(origin=(-8.328383402, 2, -15.226428568), z_dir=(0, 0, 1)), keep=Keep.TOP, mode=Mode.PRIVATE)
    with BuildSketch(Plane(origin=(-10.90006639, 2, -15.226428568), x_dir=(0, 0, 1), z_dir=(1, 0, 0))) as chamfer5_piece_13b_section:
        Polygon((CHAMFER5_SIZE, 0), (0, -CHAMFER5_SIZE), (0, 0), align=None)
    chamfer5_piece_13b = extrude(amount=22.55436909, mode=Mode.PRIVATE)
    chamfer5_piece_13b = split(chamfer5_piece_13b, bisect_by=Plane(origin=(-10.805927603, 2, -15.113462024), z_dir=(0.6401843996644802, 0, 0.7682212795973757)), keep=Keep.TOP, mode=Mode.PRIVATE)
    chamfer5_piece_13b = split(chamfer5_piece_13b, bisect_by=Plane(origin=(-8.328383402, 2, -15.226428568), z_dir=(-1, 0, 0)), keep=Keep.TOP, mode=Mode.PRIVATE)
    chamfer5_piece_13 = chamfer5_piece_13a & chamfer5_piece_13b
    add(chamfer5_piece_13)
    with BuildSketch(Plane(origin=(11.651891874, 2, 9.363971046), x_dir=(1, 0, 0), z_dir=(0, 0, -1))) as chamfer5_piece_14a_section:
        Polygon((CHAMFER5_SIZE, 0), (0, -CHAMFER5_SIZE), (0, 0), align=None)
    chamfer5_piece_14a = extrude(amount=8.143365976, mode=Mode.PRIVATE)
    chamfer5_piece_14a = split(chamfer5_piece_14a, bisect_by=Plane(origin=(11.651891874, 2, 3.792288058), z_dir=(0, 0, -1)), keep=Keep.TOP, mode=Mode.PRIVATE)
    with BuildSketch(Plane(origin=(-8.328383402, 2, 3.792288058), x_dir=(0, 0, -1), z_dir=(1, 0, 0))) as chamfer5_piece_14b_section:
        Polygon((CHAMFER5_SIZE, 0), (0, CHAMFER5_SIZE), (0, 0), align=None)
    chamfer5_piece_14b = extrude(amount=22.551958264, mode=Mode.PRIVATE)
    chamfer5_piece_14b = split(chamfer5_piece_14b, bisect_by=Plane(origin=(11.651891874, 2, 3.792288058), z_dir=(1, 0, 0)), keep=Keep.TOP, mode=Mode.PRIVATE)
    chamfer5_piece_14 = chamfer5_piece_14a & chamfer5_piece_14b
    add(chamfer5_piece_14)
    with BuildSketch(Plane(origin=(-10.90006639, 2, 3.792288058), x_dir=(0, 0, -1), z_dir=(1, 0, 0))) as chamfer5_piece_15a_section:
        Polygon((CHAMFER5_SIZE, 0), (0, CHAMFER5_SIZE), (0, 0), align=None)
    chamfer5_piece_15a = extrude(amount=22.551958264, mode=Mode.PRIVATE)
    chamfer5_piece_15a = split(chamfer5_piece_15a, bisect_by=Plane(origin=(-8.328383402, 2, 3.792288058), z_dir=(-1, 0, 0)), keep=Keep.TOP, mode=Mode.PRIVATE)
    chamfer5_piece_15a = split(chamfer5_piece_15a, bisect_by=Plane(origin=(-10.844276518, 2, 3.725340212), z_dir=(0.6401843996644799, 0, -0.7682212795973757)), keep=Keep.TOP, mode=Mode.PRIVATE)
    with BuildSketch(Plane(origin=(-8.328383402, 2, 1.22060507), x_dir=(-1, 0, 0), z_dir=(0, 0, 1))) as chamfer5_piece_15b_section:
        Polygon((CHAMFER5_SIZE, 0), (0, -CHAMFER5_SIZE), (0, 0), align=None)
    chamfer5_piece_15b = extrude(amount=7.172995726, mode=Mode.PRIVATE)
    chamfer5_piece_15b = split(chamfer5_piece_15b, bisect_by=Plane(origin=(-8.328383402, 2, 3.792288058), z_dir=(0, 0, -1)), keep=Keep.TOP, mode=Mode.PRIVATE)
    chamfer5_piece_15 = chamfer5_piece_15a & chamfer5_piece_15b
    add(chamfer5_piece_15)
    with BuildSketch(Plane(origin=(-15.328383402, 2, -10.844640342), x_dir=(1, 0, 0), z_dir=(0, 0, 1))) as chamfer5_piece_16a_section:
        Polygon((CHAMFER5_SIZE, 0), (0, CHAMFER5_SIZE), (0, 0), align=None)
    chamfer5_piece_16a = extrude(amount=7.761433312, mode=Mode.PRIVATE)
    chamfer5_piece_16a = split(chamfer5_piece_16a, bisect_by=Plane(origin=(-15.328383402, 2, -8.272957354), z_dir=(0, 0, -1)), keep=Keep.TOP, mode=Mode.PRIVATE)
    with BuildSketch(Plane(origin=(-17.328383402, 2, -8.272957354), x_dir=(0, 0, -1), z_dir=(1, 0, 0))) as chamfer5_piece_16b_section:
        Polygon((CHAMFER5_SIZE, 0), (0, CHAMFER5_SIZE), (0, 0), align=None)
    chamfer5_piece_16b = extrude(amount=4.571682988, mode=Mode.PRIVATE)
    chamfer5_piece_16b = split(chamfer5_piece_16b, bisect_by=Plane(origin=(-15.328383402, 2, -8.272957354), z_dir=(1, 0, 0)), keep=Keep.TOP, mode=Mode.PRIVATE)
    chamfer5_piece_16 = chamfer5_piece_16a & chamfer5_piece_16b
    add(chamfer5_piece_16)
    with BuildSketch(Plane(origin=(-12.756700414, 2, -3.08320703), x_dir=(0, 0, 1), z_dir=(-1, 0, 0))) as chamfer5_piece_17a_section:
        Polygon((CHAMFER5_SIZE, 0), (0, CHAMFER5_SIZE), (0, 0), align=None)
    chamfer5_piece_17a = extrude(amount=4.571682988, mode=Mode.PRIVATE)
    chamfer5_piece_17a = split(chamfer5_piece_17a, bisect_by=Plane(origin=(-15.328383402, 2, -3.08320703), z_dir=(1, 0, 0)), keep=Keep.TOP, mode=Mode.PRIVATE)
    with BuildSketch(Plane(origin=(-15.328383402, 2, -8.272957354), x_dir=(1, 0, 0), z_dir=(0, 0, 1))) as chamfer5_piece_17b_section:
        Polygon((CHAMFER5_SIZE, 0), (0, CHAMFER5_SIZE), (0, 0), align=None)
    chamfer5_piece_17b = extrude(amount=7.761433312, mode=Mode.PRIVATE)
    chamfer5_piece_17b = split(chamfer5_piece_17b, bisect_by=Plane(origin=(-15.328383402, 2, -3.08320703), z_dir=(0, 0, 1)), keep=Keep.TOP, mode=Mode.PRIVATE)
    chamfer5_piece_17 = chamfer5_piece_17a & chamfer5_piece_17b
    add(chamfer5_piece_17)
    # the kernel refuses this chamfer: 1 mm, written as the material it takes off along each edge
    with BuildSketch(Plane(origin=(14.225985688, 12, -17.226428568), x_dir=(0, -1, 0), z_dir=(-1, 0, 0))) as chamfer5_2_piece_1:
        Polygon((CHAMFER5_SIZE, 0), (0, CHAMFER5_SIZE), (0, 0), align=None)
    extrude(amount=25.015884495, mode=Mode.SUBTRACT)
    with BuildSketch(Plane(origin=(14.223574861, 12, 5.792288058), x_dir=(0, -1, 0), z_dir=(-1, 0, 0))) as chamfer5_2_piece_2:
        Polygon((CHAMFER5_SIZE, 0), (0, -CHAMFER5_SIZE), (0, 0), align=None)
    extrude(amount=25.123641252, mode=Mode.SUBTRACT)
    with BuildSketch(Plane(origin=(-12.756700414, 4, -3.08320703), x_dir=(0, -1, 0), z_dir=(-1, 0, 0))) as chamfer5_2_piece_3:
        Polygon((CHAMFER5_SIZE, 0), (0, -CHAMFER5_SIZE), (0, 0), align=None)
    extrude(amount=7.143365976, mode=Mode.SUBTRACT)
    with BuildSketch(Plane(origin=(-19.90006639, 4, -8.272957354), x_dir=(0, 0, 1), z_dir=(1, 0, 0))) as chamfer5_2_piece_4:
        Polygon((CHAMFER5_SIZE, 0), (0, CHAMFER5_SIZE), (0, 0), align=None)
    extrude(amount=7.143365976, mode=Mode.SUBTRACT)


solid = part.part
